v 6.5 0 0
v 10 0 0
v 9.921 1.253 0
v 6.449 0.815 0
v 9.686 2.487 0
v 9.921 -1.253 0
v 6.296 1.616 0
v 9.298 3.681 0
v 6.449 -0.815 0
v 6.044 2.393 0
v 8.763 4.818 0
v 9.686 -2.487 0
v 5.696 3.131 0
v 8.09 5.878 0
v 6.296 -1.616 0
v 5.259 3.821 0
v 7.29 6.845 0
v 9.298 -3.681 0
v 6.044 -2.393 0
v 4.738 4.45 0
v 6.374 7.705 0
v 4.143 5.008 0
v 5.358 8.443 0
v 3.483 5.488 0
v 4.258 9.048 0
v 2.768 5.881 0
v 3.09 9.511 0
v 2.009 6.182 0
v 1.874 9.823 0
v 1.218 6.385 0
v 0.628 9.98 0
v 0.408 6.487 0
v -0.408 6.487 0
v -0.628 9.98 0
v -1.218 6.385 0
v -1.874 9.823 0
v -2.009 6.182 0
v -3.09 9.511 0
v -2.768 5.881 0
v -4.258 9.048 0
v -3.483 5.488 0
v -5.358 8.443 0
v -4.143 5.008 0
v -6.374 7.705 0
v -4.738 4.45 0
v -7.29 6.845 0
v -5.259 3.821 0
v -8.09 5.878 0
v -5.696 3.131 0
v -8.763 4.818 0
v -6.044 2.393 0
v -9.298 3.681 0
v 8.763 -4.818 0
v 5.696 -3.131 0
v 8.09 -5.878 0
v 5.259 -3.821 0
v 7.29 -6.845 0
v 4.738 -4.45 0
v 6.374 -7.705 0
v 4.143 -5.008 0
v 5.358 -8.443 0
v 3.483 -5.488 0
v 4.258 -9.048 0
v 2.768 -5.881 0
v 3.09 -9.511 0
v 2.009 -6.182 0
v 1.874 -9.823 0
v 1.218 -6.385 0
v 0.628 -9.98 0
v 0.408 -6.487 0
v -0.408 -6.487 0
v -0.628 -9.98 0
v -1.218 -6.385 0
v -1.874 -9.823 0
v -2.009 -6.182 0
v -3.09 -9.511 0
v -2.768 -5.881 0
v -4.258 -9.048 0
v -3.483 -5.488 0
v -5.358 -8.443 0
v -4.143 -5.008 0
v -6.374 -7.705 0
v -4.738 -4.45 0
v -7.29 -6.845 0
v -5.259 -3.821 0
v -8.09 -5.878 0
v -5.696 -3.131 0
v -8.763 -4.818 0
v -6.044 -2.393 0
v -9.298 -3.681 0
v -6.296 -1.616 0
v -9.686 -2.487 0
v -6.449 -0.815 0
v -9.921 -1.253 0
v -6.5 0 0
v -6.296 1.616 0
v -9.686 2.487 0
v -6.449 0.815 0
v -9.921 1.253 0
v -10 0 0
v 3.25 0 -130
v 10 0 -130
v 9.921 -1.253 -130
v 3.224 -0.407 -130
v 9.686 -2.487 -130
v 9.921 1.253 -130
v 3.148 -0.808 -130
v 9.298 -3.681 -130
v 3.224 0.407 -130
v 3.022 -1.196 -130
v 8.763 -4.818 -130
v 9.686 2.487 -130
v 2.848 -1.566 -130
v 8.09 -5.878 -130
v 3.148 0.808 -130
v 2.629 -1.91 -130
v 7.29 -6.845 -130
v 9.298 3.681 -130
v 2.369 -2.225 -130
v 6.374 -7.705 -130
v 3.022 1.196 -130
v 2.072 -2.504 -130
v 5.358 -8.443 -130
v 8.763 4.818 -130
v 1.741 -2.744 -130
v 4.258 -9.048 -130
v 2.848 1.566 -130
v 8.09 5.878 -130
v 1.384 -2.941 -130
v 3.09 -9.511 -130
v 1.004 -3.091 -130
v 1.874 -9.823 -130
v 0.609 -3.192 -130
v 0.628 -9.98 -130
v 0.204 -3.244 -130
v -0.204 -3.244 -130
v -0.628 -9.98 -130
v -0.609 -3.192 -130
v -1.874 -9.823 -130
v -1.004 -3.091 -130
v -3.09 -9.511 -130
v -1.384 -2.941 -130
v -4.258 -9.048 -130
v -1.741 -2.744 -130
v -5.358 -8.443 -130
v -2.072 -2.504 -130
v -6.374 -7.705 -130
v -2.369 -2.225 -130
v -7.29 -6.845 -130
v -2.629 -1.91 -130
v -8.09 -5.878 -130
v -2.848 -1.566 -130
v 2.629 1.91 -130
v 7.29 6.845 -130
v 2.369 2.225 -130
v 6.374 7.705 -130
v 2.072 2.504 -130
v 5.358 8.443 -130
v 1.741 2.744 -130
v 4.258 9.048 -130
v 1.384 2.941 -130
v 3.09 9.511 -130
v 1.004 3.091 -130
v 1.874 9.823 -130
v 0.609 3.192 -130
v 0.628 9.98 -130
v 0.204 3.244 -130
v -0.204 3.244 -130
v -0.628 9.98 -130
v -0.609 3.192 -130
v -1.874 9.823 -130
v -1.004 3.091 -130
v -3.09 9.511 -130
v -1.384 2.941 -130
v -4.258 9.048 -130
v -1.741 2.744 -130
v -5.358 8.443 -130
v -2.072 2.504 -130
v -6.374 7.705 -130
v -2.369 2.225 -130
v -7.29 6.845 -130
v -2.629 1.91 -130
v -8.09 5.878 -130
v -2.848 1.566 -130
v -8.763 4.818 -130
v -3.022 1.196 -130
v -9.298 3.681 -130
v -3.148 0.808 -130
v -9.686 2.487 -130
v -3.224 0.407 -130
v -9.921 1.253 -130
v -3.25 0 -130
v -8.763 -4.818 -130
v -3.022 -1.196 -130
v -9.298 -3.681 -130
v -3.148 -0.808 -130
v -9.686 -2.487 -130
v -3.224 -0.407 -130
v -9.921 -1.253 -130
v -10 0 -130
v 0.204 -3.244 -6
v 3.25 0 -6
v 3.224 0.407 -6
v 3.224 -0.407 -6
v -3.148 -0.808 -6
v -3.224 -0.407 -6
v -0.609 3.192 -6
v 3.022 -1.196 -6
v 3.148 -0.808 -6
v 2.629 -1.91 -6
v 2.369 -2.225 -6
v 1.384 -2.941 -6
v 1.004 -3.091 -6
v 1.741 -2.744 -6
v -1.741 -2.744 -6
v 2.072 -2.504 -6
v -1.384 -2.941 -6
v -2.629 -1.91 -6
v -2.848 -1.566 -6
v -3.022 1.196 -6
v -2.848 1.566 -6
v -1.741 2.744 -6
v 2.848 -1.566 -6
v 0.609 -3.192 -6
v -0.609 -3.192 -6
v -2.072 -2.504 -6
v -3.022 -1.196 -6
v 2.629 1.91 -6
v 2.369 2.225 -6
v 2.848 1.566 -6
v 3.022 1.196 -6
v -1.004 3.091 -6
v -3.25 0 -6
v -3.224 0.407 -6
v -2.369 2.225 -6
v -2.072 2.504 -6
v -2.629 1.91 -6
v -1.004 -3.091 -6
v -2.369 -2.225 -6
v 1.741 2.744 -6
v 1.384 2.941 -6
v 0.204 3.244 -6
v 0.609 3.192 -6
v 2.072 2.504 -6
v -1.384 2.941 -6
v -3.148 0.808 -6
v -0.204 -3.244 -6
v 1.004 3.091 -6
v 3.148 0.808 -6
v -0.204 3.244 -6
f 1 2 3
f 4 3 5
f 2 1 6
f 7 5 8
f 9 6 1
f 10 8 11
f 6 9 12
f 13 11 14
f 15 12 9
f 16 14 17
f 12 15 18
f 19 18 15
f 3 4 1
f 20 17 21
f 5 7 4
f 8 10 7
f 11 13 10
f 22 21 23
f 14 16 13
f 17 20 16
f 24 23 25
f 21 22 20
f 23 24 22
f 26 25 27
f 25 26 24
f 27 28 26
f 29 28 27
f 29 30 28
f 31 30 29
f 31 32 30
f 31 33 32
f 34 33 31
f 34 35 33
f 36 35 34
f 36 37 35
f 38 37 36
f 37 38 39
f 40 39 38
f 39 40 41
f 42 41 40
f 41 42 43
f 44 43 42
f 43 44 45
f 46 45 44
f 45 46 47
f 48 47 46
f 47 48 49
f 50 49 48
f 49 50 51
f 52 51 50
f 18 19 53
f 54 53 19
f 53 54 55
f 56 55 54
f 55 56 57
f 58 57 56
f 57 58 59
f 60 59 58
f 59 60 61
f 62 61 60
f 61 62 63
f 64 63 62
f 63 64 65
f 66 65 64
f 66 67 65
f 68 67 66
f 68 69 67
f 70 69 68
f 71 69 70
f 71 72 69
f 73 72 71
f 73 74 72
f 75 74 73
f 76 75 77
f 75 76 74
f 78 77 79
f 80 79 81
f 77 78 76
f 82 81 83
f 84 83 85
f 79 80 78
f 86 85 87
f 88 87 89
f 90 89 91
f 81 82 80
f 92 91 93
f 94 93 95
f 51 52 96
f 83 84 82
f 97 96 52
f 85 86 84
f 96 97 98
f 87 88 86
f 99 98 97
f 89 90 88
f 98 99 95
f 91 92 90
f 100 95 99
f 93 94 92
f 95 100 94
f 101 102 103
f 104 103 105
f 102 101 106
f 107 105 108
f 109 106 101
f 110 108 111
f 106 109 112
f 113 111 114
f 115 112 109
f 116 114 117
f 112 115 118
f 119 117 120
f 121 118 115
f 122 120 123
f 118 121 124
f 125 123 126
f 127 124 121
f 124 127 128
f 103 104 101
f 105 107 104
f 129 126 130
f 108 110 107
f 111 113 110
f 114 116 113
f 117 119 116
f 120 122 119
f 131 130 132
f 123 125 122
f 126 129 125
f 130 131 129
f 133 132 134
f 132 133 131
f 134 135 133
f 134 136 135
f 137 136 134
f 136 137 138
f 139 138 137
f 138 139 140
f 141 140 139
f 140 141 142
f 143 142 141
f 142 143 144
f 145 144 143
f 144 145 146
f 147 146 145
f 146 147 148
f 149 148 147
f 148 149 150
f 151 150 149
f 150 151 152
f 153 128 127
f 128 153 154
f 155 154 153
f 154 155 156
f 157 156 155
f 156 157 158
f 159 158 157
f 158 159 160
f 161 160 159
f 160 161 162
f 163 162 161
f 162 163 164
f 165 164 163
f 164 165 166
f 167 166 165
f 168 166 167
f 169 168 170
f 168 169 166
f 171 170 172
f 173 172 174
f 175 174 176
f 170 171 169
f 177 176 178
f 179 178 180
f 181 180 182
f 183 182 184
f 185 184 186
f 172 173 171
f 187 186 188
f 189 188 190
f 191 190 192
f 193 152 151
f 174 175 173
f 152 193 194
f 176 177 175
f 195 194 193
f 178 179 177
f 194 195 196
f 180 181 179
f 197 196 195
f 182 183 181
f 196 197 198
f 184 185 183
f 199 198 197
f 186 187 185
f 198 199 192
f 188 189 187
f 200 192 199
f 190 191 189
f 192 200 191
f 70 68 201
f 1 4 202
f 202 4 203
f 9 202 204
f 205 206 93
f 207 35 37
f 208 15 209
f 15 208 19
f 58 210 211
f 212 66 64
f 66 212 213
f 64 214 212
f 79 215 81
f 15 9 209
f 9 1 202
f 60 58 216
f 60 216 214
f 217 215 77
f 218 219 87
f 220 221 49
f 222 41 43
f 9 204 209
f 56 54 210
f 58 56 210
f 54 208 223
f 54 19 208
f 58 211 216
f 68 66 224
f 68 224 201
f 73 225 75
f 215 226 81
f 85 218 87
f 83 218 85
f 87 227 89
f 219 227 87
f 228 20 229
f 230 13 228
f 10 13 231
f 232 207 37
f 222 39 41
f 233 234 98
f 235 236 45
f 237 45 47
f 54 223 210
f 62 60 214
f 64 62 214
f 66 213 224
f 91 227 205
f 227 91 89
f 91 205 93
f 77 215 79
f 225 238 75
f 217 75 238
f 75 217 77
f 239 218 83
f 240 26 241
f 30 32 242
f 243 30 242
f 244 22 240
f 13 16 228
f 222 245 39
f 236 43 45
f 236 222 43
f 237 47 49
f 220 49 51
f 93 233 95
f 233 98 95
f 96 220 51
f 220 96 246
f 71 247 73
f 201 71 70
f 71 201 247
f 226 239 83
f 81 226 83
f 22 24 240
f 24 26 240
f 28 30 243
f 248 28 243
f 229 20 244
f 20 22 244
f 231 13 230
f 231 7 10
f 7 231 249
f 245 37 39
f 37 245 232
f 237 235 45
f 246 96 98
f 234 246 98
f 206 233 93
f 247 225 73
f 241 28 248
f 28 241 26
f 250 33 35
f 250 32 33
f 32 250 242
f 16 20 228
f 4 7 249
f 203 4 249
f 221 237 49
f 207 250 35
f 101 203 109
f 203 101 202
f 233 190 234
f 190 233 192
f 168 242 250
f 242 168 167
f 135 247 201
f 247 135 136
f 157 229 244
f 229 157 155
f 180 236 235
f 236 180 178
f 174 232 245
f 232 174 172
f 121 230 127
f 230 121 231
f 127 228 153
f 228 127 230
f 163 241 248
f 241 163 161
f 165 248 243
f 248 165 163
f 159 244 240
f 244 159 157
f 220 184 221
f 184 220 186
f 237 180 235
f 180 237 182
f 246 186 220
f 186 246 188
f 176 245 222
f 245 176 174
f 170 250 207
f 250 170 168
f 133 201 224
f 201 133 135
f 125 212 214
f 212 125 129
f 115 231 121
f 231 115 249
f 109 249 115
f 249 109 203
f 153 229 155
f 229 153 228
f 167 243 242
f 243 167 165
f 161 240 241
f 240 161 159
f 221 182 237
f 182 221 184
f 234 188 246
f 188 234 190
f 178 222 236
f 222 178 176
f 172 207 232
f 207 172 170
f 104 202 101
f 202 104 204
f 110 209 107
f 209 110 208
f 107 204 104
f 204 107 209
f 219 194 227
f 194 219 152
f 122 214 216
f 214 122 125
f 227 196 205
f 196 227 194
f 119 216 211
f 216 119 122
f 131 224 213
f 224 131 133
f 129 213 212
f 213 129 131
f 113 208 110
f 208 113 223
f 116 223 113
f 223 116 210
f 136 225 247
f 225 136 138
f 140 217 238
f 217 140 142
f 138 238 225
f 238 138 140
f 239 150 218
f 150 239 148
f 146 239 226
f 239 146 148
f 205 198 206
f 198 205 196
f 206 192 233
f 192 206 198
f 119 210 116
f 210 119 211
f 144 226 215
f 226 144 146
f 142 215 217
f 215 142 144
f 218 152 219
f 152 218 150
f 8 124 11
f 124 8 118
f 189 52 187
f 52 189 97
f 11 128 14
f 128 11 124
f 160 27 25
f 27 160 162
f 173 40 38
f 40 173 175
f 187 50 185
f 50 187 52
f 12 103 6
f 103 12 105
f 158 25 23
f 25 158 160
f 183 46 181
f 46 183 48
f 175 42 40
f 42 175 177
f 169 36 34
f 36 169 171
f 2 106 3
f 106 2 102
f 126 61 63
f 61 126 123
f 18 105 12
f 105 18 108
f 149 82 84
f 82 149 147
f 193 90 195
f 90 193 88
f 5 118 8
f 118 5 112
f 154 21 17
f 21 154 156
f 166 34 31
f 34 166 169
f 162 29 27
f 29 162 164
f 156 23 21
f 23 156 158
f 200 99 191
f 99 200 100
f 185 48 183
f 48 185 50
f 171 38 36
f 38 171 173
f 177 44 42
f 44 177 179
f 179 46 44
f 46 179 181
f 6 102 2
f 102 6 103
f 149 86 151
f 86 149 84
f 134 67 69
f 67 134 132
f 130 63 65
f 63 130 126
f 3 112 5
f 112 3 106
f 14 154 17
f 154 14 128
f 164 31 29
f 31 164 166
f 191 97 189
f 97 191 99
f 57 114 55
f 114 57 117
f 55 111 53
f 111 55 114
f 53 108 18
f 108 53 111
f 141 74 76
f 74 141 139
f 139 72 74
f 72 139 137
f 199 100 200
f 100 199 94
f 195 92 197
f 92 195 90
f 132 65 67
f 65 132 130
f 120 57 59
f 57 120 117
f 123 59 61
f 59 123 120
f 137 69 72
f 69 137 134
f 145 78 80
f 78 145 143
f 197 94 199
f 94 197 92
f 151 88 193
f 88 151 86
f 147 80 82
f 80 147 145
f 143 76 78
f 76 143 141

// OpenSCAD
$fn = 50;


difference() {
	union() {
		translate(v = [0, 0, -130.0000000000]) {
			cylinder(h = 130, r = 10.0000000000);
		}
		cylinder(h = 0, r = 13.0000000000);
	}
	union() {
		translate(v = [0, 0, 0]) {
			rotate(a = [0, 0, 0]) {
				difference() {
					union() {
						#translate(v = [0, 0, -130.0000000000]) {
							cylinder(h = 130, r = 2.2500000000);
						}
						#translate(v = [0, 0, -6]) {
							cylinder(h = 6, r1 = 3.2500000000, r2 = 6.5000000000);
						}
						#translate(v = [0, 0, -130.0000000000]) {
							cylinder(h = 130, r = 3.2500000000);
						}
						#translate(v = [0, 0, -130.0000000000]) {
							cylinder(h = 130, r = 2.2500000000);
						}
					}
					union();
				}
			}
		}
	}
}
